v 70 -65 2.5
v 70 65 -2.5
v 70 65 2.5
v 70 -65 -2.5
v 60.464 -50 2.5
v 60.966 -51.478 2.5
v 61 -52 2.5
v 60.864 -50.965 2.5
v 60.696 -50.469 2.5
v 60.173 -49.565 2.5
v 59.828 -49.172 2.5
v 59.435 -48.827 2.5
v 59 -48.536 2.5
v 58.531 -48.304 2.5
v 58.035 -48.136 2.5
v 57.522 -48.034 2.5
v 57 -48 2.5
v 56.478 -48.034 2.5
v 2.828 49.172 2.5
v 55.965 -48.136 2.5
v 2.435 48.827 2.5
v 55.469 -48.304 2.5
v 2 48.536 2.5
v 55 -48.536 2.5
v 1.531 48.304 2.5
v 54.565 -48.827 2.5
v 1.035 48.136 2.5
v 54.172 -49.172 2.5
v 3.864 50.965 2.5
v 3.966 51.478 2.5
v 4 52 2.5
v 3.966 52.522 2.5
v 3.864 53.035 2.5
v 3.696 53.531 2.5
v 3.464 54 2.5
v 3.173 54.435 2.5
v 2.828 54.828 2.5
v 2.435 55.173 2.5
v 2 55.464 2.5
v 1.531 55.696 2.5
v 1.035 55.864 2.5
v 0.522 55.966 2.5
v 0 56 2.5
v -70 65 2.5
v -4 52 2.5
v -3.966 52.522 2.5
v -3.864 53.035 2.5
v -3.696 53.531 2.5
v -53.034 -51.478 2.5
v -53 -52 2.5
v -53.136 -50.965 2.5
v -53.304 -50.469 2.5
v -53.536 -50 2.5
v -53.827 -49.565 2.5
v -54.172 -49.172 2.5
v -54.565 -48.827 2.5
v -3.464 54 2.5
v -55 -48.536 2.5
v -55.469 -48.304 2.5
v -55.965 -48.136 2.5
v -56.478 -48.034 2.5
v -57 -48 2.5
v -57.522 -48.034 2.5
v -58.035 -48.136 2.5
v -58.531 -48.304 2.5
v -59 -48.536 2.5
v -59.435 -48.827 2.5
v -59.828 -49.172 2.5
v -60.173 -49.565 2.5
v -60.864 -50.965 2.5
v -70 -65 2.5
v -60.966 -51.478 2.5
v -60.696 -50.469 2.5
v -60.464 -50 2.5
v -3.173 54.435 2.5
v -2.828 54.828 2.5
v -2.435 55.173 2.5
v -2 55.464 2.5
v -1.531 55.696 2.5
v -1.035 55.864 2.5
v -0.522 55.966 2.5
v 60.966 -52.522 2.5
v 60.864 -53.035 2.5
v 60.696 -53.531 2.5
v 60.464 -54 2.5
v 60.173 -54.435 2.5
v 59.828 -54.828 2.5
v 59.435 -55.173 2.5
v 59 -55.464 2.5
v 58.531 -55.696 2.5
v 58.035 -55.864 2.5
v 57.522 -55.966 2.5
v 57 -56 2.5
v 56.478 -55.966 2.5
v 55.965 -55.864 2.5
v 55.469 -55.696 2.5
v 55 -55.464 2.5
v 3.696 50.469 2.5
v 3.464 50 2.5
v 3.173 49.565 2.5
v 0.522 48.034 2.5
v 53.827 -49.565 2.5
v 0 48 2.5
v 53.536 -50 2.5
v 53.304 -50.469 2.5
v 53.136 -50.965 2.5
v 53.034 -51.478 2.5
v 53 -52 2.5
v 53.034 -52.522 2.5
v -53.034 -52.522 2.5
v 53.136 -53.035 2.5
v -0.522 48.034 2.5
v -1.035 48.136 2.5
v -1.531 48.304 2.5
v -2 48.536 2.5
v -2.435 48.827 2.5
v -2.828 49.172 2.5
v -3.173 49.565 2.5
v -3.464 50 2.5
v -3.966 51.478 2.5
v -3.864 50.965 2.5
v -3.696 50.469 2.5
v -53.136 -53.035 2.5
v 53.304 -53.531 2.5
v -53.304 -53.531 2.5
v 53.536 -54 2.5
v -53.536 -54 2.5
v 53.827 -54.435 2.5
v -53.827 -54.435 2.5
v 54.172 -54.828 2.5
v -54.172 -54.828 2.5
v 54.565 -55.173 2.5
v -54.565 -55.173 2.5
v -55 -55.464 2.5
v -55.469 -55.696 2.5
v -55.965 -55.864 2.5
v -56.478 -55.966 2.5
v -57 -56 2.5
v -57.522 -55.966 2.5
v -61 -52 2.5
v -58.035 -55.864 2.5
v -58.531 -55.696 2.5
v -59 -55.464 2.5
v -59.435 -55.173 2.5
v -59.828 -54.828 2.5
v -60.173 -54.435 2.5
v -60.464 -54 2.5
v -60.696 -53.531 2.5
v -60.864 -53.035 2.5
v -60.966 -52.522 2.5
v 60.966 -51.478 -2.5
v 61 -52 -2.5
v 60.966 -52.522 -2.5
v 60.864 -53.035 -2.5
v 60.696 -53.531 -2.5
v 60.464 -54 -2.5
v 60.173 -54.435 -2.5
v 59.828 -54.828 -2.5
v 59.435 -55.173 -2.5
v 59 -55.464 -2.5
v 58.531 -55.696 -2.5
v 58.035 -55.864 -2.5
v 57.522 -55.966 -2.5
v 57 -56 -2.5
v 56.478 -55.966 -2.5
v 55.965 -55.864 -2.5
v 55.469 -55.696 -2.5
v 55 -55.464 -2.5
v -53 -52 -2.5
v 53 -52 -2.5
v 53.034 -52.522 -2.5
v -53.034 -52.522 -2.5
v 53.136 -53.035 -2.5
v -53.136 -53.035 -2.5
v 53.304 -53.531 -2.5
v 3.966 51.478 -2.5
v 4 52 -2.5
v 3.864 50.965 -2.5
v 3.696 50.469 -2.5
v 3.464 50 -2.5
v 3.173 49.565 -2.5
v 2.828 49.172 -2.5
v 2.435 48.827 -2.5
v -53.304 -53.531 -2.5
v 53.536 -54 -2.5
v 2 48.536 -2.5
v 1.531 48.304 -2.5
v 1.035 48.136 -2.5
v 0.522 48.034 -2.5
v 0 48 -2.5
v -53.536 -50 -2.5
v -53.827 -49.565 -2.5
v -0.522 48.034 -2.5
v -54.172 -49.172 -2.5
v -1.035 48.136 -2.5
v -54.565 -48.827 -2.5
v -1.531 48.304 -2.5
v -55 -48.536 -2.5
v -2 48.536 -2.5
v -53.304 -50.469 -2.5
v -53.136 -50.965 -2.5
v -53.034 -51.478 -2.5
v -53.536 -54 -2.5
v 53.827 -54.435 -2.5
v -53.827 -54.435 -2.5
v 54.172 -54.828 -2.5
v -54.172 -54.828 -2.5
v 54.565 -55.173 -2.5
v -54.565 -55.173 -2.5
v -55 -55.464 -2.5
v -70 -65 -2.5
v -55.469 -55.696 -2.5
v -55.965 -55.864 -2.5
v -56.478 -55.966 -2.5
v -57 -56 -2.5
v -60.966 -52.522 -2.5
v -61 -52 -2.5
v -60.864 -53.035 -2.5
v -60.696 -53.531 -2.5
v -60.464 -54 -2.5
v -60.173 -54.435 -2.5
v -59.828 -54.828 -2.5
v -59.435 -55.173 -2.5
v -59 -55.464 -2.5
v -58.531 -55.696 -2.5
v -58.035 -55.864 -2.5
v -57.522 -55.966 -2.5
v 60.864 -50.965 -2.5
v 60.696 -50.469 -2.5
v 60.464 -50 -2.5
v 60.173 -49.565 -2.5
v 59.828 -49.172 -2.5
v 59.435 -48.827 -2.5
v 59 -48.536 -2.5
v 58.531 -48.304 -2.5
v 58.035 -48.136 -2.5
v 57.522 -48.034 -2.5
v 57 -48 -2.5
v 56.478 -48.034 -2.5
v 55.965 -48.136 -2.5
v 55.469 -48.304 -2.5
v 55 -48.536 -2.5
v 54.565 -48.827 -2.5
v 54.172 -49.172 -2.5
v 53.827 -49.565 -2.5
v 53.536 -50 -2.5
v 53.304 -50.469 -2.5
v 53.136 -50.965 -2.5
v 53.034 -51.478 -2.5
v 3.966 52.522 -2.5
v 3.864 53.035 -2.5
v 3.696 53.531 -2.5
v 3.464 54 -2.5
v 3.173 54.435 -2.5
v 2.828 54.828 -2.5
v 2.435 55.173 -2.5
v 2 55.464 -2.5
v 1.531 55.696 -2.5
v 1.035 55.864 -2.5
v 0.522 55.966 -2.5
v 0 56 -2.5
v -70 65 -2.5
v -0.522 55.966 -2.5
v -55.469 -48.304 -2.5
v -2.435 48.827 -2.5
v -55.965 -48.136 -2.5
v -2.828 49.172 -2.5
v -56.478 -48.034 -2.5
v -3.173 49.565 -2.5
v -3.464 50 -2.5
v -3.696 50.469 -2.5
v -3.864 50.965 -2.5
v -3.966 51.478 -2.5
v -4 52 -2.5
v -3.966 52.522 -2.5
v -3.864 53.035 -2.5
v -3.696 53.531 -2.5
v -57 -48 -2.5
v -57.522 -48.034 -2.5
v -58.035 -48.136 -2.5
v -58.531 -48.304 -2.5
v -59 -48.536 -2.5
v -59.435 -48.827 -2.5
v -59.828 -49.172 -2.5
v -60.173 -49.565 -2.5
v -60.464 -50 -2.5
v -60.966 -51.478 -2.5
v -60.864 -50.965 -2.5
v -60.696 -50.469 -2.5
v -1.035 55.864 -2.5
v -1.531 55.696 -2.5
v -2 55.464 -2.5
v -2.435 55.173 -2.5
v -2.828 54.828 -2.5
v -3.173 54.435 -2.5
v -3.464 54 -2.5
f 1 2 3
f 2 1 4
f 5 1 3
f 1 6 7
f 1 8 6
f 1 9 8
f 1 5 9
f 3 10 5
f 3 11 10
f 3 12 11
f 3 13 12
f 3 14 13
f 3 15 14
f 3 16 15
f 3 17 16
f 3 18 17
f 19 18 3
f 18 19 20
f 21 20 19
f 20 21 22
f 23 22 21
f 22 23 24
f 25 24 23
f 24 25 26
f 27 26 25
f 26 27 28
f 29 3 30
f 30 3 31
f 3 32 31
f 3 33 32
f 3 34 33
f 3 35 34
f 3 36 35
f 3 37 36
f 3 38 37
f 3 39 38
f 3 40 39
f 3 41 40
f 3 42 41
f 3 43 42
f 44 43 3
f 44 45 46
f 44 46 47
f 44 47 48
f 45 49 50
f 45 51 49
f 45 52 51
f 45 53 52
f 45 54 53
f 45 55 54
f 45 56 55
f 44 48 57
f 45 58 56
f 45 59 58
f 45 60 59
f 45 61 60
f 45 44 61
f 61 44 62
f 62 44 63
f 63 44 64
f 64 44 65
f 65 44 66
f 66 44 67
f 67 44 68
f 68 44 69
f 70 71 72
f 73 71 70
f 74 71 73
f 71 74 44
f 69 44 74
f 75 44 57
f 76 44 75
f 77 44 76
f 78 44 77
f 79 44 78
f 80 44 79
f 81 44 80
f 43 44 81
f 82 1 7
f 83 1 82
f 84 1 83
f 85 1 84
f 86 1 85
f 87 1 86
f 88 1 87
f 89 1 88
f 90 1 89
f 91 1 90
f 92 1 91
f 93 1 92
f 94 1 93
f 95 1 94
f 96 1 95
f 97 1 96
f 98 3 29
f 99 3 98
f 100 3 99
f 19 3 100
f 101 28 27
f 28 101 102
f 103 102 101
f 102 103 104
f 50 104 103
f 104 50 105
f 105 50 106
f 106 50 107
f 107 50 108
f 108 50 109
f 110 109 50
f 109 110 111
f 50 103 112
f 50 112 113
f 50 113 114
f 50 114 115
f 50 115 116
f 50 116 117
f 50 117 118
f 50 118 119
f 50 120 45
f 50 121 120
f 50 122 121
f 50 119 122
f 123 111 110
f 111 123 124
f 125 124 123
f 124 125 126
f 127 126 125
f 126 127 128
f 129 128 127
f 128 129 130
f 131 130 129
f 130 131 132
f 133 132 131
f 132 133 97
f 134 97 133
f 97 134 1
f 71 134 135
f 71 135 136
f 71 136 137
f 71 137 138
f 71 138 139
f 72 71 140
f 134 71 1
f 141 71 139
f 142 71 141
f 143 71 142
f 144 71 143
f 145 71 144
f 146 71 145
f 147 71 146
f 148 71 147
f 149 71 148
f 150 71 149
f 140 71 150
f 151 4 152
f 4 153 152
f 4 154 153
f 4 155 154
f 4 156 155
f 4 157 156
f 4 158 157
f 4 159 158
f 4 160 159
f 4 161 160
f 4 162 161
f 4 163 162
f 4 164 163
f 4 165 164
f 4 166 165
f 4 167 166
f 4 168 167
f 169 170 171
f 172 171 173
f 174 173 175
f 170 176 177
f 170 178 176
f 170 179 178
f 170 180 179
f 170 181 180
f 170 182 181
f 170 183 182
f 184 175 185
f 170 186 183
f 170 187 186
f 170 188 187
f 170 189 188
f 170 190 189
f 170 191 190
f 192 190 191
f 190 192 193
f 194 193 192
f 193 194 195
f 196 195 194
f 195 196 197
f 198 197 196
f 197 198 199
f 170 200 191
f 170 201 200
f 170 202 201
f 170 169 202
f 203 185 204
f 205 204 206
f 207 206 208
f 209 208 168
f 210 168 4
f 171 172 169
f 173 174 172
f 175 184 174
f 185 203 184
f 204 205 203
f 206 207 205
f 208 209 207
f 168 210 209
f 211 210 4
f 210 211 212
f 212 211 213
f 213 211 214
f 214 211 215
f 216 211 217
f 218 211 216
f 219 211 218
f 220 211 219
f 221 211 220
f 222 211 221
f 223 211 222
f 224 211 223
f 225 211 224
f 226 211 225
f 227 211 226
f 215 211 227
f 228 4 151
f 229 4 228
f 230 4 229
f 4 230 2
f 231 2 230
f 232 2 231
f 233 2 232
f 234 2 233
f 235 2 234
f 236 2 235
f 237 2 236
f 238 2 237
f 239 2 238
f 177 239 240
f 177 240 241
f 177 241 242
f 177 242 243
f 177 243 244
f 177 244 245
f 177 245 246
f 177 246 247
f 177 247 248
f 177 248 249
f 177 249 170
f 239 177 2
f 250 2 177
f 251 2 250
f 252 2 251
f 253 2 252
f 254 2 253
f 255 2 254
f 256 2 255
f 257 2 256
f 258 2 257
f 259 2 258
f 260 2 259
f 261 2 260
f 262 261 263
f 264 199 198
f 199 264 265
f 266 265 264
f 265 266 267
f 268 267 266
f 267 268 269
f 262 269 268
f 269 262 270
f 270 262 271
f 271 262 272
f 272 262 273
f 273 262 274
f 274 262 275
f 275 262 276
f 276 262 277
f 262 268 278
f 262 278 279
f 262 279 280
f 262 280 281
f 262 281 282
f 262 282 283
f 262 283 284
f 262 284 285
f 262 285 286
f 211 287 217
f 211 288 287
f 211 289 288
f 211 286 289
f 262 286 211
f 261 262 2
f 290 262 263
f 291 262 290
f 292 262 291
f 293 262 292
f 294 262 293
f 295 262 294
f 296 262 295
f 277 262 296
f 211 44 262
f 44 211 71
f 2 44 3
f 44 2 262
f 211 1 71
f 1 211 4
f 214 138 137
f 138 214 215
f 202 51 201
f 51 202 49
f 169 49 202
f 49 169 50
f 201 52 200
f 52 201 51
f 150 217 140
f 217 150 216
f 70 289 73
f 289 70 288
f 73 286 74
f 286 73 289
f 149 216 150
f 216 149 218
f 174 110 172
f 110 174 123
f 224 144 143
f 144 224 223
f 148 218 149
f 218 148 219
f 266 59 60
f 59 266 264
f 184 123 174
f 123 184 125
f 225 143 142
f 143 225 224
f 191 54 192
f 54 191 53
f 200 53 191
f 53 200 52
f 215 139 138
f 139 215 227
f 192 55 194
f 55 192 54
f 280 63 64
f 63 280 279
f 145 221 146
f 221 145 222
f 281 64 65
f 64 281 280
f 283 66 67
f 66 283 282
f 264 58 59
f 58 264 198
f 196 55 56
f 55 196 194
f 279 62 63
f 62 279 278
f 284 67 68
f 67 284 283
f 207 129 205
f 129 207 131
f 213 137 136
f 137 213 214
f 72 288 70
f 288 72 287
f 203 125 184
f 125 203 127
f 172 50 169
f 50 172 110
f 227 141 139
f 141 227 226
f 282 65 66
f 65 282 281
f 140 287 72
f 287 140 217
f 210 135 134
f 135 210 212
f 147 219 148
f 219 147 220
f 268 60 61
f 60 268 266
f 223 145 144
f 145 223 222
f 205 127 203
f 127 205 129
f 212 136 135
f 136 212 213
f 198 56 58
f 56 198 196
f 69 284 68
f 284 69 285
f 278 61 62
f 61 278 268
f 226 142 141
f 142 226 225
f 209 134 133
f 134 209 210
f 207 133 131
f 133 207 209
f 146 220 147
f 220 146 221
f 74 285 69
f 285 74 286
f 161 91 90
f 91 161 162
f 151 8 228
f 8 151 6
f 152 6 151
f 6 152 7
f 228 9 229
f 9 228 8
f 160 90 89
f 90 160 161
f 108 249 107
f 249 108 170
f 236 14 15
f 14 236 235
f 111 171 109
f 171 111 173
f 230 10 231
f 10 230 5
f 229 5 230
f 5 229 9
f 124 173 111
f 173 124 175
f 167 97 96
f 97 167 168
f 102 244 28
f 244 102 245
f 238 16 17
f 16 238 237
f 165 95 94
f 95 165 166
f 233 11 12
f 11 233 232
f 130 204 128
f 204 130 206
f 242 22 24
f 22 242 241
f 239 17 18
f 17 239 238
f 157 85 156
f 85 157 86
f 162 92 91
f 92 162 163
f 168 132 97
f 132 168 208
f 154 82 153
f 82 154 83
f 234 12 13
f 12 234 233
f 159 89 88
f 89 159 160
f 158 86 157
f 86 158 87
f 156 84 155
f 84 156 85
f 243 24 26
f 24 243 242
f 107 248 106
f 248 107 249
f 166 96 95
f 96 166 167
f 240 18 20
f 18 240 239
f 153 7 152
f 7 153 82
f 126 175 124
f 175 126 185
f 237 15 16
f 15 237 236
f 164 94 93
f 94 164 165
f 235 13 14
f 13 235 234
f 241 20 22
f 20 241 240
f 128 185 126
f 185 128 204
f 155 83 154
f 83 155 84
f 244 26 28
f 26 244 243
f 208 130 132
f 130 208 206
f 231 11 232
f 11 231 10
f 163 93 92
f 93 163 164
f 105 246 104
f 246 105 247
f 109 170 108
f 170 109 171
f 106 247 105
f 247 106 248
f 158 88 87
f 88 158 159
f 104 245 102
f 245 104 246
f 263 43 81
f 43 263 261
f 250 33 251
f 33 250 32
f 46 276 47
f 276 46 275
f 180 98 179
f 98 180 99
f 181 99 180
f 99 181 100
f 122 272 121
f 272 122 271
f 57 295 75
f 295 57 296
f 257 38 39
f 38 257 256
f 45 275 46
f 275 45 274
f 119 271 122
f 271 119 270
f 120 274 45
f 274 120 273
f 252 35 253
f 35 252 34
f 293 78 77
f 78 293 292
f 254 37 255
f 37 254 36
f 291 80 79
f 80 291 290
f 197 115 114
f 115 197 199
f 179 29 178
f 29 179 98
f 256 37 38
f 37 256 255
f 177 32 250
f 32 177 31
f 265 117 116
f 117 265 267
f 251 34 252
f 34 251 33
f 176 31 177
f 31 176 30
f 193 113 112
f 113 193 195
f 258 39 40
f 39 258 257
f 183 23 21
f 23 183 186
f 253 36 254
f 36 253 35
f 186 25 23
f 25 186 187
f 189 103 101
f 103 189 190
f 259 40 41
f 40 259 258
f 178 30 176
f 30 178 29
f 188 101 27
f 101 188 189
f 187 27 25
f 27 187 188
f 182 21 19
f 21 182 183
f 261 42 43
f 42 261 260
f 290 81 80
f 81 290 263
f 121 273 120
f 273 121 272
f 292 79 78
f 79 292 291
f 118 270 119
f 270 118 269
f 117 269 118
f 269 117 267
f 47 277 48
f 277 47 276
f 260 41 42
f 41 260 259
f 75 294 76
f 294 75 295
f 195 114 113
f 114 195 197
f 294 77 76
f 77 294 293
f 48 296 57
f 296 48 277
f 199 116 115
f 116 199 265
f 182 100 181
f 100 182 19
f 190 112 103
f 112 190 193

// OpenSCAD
// ========================================
// a 140 x 130 x 5 mm plate with three 8 mm holes
// NeuroCAD canonical IR; dimensions are millimetres
// ========================================
$fn = 48;

difference() {
  cube(size=[140, 130, 5], center=true);
  translate([-57, -52, 0]) {
    cylinder(r=4, h=7, center=true);
  }
  translate([57, -52, 0]) {
    cylinder(r=4, h=7, center=true);
  }
  translate([0, 52, 0]) {
    cylinder(r=4, h=7, center=true);
  }
}
